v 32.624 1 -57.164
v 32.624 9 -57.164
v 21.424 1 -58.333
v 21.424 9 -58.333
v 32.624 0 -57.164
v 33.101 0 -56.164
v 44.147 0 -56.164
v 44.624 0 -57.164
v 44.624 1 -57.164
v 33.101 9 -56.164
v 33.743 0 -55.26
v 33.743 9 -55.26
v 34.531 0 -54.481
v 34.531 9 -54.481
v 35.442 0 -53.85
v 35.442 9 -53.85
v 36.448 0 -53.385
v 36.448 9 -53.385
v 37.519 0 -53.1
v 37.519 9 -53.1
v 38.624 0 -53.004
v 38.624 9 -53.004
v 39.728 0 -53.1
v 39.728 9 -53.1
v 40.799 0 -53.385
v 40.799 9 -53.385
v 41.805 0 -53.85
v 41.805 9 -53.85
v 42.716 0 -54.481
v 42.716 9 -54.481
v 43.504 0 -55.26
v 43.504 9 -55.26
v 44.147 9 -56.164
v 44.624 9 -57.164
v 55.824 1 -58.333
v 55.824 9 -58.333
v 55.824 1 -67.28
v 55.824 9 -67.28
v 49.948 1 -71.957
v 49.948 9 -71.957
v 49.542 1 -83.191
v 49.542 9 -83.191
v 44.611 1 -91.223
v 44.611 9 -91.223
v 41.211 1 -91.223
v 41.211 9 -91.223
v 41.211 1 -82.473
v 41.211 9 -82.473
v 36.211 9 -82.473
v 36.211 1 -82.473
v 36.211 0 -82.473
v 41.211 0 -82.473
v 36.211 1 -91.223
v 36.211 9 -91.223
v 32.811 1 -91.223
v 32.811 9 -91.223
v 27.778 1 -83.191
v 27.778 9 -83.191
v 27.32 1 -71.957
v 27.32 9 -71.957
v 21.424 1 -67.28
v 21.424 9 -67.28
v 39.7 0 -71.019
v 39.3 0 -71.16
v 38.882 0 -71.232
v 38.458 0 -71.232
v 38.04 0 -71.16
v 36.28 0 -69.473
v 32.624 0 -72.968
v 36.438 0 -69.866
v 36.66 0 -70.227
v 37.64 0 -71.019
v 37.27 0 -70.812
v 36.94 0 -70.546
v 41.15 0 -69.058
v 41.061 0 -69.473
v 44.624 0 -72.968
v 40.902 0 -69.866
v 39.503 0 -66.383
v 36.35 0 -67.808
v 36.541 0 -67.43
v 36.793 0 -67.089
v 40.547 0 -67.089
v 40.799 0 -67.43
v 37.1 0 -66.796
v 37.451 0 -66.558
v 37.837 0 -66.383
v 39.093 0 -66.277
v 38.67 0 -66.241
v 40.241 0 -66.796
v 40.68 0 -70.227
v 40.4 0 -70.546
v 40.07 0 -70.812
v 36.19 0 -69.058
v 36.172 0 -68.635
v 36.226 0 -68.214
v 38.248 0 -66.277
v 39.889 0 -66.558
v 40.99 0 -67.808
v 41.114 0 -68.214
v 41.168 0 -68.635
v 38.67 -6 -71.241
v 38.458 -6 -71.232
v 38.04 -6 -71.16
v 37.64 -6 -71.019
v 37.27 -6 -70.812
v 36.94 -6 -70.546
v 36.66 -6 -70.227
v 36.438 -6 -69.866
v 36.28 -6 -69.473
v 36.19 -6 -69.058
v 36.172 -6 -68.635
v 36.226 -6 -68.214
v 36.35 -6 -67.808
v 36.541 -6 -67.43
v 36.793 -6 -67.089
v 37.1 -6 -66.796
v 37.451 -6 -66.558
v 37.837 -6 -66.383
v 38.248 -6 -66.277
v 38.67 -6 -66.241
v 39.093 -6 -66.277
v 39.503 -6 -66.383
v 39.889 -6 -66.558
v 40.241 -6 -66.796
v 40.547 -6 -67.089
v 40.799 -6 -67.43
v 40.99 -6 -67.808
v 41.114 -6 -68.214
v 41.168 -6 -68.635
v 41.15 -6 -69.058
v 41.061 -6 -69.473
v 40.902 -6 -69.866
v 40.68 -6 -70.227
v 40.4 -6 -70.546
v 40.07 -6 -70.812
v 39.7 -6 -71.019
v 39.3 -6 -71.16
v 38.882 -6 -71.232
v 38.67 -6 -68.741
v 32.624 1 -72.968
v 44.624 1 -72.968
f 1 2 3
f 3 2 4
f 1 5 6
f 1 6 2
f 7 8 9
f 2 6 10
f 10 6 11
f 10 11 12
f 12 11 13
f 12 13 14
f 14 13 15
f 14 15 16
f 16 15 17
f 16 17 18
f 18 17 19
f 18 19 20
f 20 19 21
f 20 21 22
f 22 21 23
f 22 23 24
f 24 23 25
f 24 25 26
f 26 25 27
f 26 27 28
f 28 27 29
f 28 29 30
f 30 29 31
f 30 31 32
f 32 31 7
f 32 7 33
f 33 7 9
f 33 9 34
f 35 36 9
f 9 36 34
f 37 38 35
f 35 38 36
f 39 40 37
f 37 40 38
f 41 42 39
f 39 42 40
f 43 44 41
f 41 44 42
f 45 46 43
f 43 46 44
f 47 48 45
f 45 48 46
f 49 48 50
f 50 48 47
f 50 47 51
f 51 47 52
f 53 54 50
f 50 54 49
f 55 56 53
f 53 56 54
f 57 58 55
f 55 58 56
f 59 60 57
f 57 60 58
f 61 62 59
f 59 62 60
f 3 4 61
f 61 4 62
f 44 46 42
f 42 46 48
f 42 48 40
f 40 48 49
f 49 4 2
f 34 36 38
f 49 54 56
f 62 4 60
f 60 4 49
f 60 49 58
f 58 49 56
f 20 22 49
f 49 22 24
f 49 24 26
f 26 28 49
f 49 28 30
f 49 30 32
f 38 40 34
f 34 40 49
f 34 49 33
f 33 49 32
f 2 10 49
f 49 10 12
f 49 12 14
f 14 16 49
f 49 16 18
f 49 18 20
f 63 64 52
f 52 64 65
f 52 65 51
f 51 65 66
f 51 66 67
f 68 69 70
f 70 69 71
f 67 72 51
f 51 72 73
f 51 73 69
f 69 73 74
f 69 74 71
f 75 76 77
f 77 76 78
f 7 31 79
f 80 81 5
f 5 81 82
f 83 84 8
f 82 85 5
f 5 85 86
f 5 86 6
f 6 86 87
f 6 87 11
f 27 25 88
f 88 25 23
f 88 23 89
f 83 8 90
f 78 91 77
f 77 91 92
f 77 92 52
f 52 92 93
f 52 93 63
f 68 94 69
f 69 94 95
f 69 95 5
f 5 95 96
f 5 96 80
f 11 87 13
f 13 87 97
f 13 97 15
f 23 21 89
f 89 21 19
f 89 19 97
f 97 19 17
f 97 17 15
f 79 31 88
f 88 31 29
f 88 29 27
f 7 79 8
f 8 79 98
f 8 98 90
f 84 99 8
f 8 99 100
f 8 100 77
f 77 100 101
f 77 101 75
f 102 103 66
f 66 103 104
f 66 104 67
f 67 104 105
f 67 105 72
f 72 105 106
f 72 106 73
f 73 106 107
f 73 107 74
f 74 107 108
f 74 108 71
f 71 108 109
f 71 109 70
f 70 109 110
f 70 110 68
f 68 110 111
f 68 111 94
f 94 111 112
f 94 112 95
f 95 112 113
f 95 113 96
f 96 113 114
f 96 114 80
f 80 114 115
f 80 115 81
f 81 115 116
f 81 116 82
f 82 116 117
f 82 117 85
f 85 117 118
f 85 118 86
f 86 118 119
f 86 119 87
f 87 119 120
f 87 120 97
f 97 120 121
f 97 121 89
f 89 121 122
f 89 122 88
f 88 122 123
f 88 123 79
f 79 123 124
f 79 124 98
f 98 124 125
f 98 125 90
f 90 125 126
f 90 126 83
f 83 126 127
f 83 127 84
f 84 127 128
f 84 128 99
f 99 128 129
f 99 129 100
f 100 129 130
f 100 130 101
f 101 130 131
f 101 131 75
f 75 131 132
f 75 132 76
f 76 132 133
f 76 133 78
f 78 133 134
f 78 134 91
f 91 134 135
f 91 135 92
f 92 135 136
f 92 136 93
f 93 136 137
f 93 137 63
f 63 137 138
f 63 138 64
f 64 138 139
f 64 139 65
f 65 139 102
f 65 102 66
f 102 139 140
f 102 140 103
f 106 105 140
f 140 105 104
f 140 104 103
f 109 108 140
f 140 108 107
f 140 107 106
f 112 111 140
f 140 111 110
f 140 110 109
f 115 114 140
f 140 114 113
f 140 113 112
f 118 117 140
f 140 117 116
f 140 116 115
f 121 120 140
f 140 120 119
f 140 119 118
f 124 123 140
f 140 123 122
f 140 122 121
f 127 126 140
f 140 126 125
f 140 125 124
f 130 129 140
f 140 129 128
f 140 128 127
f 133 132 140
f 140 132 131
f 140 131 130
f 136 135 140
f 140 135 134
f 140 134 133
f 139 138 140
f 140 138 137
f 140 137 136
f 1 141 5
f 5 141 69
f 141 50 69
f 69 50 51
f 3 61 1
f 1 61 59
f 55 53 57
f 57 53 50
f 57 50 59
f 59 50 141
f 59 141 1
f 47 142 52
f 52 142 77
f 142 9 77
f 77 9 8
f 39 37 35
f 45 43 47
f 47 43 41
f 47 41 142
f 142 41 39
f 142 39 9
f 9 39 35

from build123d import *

# Parameters (mm, degrees)
BOSS_EXTRUDE1_DEPTH = 9
SKETCH3_R           = 2.5
BOSS_EXTRUDE2_DEPTH = 6
CUT_EXTRUDE1_DEPTH  = 1


with BuildPart() as part:
    # Sketch2 → Boss-Extrude1 (new body)
    with BuildSketch(Plane(origin=(0, 0, 0), x_dir=(1, 0, 0), z_dir=(0, 1, 0))):
        with BuildLine():
            Line((21.423631539, 59.756571467), (21.423631539, 67.28012571))
            Line((21.423631539, 67.28012571), (27.320471351, 71.956929699))
            Line((27.320471351, 71.956929699), (27.777984785, 83.191426238))
            Line((27.777984785, 83.191426238), (32.810632556, 91.223328742))
            Line((32.810632556, 91.223328742), (36.210632556, 91.223328742))
            Line((36.210632556, 91.223328742), (36.210632556, 82.473328742))
            Line((36.210632556, 82.473328742), (41.210632556, 82.473328742))
            Line((41.210632556, 82.473328742), (41.210632556, 91.223328742))
            Line((41.210632556, 91.223328742), (44.610632556, 91.223328742))
            Line((44.610632556, 91.223328742), (49.541610675, 83.191426238))
            Line((49.541610675, 83.191426238), (49.948289283, 71.956929699))
            Line((49.948289283, 71.956929699), (55.823631539, 67.28012571))
            Line((55.823631539, 67.28012571), (55.823631539, 58.333196339))
            Line((55.823631539, 58.333196339), (44.623631539, 57.163995342))
            ThreePointArc((44.623631539, 57.163995342), (38.623631539, 53.004094152), (32.623631539, 57.163995342))
            Line((32.623631539, 57.163995342), (21.423631539, 58.333196339))
            Line((21.423631539, 58.333196339), (21.423631539, 59.756571467))
        make_face()
    extrude(amount=BOSS_EXTRUDE1_DEPTH)

    # Sketch3 → Boss-Extrude2 (add)
    with BuildSketch(Plane.XZ):
        with Locations((38.670089984, -68.740632333)):
            Circle(SKETCH3_R)
    extrude(amount=BOSS_EXTRUDE2_DEPTH)

    # Sketch4 → Cut-Extrude1 (cut)
    with BuildSketch(Plane.XZ):
        Polygon((32.623631539, -57.163995342), (21.423631539, -58.333196339), (21.423631539, -67.28012571), (27.320471351, -71.956929699), (27.777984785, -83.191426238), (32.810632556, -91.223328742), (36.210632556, -91.223328742), (36.210632556, -82.473328742), (32.623631539, -72.967523608), align=None)
        Polygon((44.623631539, -57.163995342), (44.623631539, -72.967523608), (41.210632556, -82.473328742), (41.210632556, -91.223328742), (44.610632556, -91.223328742), (49.541610675, -83.191426238), (49.948289283, -71.956929699), (55.823631539, -67.28012571), (55.823631539, -58.333196339), align=None)
    extrude(amount=-CUT_EXTRUDE1_DEPTH, mode=Mode.SUBTRACT)


solid = part.part
